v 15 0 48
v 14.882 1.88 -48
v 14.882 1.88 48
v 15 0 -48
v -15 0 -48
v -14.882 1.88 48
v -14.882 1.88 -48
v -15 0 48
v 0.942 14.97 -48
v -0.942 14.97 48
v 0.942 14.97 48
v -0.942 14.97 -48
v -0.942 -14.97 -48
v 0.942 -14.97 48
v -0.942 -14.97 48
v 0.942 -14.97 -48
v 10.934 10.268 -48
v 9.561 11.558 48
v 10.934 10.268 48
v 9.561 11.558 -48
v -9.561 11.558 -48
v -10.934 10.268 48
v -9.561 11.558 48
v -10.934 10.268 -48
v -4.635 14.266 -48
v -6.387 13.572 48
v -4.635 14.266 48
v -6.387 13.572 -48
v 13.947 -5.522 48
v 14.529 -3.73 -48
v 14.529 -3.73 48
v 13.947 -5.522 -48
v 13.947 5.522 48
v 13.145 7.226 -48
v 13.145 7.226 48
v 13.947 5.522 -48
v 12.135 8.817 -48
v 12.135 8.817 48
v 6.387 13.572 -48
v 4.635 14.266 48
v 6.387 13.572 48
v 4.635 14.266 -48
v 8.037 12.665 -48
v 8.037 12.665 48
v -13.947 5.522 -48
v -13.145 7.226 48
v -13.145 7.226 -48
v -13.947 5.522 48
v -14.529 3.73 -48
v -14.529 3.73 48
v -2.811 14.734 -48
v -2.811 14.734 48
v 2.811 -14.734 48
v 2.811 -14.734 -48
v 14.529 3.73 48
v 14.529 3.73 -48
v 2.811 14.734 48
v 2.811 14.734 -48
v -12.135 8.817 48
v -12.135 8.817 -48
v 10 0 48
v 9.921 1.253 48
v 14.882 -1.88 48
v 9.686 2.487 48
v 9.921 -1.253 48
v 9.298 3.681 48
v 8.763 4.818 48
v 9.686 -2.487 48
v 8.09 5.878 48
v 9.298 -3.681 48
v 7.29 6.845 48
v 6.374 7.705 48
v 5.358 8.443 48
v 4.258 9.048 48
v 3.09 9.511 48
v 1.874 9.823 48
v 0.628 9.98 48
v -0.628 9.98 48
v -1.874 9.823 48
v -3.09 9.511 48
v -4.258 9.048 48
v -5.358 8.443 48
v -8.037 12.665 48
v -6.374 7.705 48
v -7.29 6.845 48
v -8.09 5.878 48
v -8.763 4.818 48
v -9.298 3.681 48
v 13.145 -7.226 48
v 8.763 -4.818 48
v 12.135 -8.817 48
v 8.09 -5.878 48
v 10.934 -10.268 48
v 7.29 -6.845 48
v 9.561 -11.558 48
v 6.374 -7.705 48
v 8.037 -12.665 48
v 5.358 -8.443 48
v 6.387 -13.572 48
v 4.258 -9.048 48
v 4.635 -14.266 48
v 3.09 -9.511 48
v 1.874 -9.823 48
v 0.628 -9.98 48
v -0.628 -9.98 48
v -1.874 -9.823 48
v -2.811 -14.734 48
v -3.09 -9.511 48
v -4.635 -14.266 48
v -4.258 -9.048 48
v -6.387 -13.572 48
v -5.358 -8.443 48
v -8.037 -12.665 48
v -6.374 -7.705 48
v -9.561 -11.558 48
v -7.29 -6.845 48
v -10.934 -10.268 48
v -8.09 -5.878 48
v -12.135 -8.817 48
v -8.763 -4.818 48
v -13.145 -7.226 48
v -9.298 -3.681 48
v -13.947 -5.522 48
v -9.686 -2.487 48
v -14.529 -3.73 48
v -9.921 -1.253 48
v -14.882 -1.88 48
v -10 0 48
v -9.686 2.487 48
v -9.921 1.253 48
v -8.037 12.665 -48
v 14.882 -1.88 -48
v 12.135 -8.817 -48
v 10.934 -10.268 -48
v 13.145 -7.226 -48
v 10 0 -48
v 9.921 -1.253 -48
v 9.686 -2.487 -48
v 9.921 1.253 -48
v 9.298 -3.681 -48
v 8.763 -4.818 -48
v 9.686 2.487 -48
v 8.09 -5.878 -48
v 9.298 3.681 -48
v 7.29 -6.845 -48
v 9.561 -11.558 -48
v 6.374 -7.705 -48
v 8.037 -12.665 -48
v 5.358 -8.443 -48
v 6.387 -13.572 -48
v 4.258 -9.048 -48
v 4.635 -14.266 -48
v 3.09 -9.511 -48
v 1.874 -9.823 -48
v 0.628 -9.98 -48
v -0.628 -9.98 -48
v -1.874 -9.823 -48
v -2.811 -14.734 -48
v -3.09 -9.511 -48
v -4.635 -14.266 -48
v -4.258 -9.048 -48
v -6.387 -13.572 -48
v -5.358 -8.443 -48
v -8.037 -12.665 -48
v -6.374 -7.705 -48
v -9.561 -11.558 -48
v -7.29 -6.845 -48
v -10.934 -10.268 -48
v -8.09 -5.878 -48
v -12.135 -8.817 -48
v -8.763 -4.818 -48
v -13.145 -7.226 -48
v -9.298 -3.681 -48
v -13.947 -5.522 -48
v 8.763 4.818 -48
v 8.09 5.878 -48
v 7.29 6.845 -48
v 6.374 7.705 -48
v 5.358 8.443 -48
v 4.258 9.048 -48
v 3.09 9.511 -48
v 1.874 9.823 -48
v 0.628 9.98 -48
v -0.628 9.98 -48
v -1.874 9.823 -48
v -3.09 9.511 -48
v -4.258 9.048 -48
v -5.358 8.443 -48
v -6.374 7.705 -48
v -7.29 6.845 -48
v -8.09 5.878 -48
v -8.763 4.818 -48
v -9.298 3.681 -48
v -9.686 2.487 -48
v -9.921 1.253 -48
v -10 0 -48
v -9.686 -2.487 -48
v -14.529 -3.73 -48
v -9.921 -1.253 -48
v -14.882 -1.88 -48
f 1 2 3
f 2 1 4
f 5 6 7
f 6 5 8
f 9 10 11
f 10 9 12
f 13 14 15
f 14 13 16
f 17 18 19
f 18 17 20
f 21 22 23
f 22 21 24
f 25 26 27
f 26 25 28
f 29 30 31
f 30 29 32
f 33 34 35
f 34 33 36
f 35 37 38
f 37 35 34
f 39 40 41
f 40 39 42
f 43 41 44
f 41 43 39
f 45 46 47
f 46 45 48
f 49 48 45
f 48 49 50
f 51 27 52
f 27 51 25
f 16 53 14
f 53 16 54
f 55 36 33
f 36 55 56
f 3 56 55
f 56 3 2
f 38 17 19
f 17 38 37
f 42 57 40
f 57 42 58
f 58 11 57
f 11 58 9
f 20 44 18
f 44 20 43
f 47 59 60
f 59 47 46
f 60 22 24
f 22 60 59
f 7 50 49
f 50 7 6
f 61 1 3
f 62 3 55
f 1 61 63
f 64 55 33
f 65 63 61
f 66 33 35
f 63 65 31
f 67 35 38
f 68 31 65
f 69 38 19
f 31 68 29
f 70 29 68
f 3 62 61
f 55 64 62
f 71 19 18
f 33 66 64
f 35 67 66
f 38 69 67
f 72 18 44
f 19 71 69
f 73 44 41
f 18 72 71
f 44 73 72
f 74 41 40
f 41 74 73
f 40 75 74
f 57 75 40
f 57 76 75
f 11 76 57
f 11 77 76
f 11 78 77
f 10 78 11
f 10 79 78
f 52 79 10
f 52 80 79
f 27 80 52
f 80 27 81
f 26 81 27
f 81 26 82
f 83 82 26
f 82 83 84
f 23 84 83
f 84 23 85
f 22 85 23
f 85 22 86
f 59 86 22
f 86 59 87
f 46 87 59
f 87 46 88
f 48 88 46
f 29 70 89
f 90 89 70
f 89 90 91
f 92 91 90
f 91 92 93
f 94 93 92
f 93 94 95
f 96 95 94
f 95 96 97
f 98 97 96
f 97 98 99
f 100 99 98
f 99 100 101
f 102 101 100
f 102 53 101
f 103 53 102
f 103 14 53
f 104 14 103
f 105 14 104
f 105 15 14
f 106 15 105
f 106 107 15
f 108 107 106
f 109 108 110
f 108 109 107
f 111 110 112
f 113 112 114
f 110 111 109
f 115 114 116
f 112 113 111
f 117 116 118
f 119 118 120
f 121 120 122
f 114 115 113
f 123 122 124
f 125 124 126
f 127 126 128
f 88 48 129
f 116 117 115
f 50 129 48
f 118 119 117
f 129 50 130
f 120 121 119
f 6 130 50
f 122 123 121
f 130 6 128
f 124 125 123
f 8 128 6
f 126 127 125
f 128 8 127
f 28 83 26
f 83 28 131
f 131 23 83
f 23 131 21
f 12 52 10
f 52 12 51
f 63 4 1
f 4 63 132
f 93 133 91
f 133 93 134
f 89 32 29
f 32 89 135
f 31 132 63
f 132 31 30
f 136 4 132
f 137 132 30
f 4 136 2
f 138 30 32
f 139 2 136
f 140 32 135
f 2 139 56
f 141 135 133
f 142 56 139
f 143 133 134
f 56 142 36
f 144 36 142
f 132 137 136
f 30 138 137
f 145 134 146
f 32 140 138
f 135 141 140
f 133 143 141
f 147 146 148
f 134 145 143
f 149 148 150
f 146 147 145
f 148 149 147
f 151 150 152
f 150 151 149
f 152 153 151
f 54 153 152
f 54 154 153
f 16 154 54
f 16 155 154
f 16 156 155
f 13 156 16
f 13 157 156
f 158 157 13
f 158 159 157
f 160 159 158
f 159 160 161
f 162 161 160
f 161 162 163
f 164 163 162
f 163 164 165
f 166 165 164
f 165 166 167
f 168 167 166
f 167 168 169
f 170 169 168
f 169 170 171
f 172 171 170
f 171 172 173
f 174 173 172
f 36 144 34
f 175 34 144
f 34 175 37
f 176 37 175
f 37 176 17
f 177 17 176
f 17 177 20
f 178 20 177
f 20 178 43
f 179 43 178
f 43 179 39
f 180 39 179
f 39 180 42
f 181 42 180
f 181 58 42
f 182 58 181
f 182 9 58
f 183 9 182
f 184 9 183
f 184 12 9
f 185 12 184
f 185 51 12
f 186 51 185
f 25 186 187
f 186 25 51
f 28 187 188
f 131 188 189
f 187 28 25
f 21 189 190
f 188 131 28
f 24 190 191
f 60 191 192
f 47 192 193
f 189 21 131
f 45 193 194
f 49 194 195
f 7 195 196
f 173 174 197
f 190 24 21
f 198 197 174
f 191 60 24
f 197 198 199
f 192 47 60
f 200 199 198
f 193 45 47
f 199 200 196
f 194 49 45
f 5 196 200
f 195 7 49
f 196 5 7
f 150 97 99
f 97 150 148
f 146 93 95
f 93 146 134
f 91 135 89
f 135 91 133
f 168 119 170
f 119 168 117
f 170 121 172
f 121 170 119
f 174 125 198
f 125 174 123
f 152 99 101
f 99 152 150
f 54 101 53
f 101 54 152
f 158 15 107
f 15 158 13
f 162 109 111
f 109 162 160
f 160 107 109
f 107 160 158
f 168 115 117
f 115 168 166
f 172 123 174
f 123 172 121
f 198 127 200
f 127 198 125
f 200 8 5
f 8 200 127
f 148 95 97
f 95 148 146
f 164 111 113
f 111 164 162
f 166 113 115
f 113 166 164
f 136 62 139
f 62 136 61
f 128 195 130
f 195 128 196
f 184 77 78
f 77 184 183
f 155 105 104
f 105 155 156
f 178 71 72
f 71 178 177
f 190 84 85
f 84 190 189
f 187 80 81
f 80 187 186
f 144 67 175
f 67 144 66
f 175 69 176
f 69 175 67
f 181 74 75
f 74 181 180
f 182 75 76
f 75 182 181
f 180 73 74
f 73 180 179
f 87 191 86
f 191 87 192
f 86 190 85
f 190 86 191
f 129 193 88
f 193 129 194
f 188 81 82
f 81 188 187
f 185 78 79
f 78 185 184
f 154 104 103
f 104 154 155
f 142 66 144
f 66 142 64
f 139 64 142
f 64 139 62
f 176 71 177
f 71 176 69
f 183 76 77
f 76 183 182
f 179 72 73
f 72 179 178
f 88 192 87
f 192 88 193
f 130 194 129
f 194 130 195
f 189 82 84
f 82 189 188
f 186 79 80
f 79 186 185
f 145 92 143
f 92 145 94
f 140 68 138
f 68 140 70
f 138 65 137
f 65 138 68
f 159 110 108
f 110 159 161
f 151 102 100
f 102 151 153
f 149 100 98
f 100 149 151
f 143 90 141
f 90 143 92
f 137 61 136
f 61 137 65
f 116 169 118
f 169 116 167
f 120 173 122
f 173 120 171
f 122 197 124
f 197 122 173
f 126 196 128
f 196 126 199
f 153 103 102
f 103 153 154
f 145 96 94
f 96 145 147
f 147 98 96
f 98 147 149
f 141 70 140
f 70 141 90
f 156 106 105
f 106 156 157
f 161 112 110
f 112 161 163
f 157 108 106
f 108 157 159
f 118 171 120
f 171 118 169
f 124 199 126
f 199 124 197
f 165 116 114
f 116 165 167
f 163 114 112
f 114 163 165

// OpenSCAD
$fn = 50;


difference() {
	union() {
		translate(v = [0, 0, -48.0000000000]) {
			cylinder(h = 96, r = 15.0000000000);
		}
	}
	union() {
		translate(v = [0, 0, -100.0000000000]) {
			cylinder(h = 200, r = 10);
		}
	}
}
